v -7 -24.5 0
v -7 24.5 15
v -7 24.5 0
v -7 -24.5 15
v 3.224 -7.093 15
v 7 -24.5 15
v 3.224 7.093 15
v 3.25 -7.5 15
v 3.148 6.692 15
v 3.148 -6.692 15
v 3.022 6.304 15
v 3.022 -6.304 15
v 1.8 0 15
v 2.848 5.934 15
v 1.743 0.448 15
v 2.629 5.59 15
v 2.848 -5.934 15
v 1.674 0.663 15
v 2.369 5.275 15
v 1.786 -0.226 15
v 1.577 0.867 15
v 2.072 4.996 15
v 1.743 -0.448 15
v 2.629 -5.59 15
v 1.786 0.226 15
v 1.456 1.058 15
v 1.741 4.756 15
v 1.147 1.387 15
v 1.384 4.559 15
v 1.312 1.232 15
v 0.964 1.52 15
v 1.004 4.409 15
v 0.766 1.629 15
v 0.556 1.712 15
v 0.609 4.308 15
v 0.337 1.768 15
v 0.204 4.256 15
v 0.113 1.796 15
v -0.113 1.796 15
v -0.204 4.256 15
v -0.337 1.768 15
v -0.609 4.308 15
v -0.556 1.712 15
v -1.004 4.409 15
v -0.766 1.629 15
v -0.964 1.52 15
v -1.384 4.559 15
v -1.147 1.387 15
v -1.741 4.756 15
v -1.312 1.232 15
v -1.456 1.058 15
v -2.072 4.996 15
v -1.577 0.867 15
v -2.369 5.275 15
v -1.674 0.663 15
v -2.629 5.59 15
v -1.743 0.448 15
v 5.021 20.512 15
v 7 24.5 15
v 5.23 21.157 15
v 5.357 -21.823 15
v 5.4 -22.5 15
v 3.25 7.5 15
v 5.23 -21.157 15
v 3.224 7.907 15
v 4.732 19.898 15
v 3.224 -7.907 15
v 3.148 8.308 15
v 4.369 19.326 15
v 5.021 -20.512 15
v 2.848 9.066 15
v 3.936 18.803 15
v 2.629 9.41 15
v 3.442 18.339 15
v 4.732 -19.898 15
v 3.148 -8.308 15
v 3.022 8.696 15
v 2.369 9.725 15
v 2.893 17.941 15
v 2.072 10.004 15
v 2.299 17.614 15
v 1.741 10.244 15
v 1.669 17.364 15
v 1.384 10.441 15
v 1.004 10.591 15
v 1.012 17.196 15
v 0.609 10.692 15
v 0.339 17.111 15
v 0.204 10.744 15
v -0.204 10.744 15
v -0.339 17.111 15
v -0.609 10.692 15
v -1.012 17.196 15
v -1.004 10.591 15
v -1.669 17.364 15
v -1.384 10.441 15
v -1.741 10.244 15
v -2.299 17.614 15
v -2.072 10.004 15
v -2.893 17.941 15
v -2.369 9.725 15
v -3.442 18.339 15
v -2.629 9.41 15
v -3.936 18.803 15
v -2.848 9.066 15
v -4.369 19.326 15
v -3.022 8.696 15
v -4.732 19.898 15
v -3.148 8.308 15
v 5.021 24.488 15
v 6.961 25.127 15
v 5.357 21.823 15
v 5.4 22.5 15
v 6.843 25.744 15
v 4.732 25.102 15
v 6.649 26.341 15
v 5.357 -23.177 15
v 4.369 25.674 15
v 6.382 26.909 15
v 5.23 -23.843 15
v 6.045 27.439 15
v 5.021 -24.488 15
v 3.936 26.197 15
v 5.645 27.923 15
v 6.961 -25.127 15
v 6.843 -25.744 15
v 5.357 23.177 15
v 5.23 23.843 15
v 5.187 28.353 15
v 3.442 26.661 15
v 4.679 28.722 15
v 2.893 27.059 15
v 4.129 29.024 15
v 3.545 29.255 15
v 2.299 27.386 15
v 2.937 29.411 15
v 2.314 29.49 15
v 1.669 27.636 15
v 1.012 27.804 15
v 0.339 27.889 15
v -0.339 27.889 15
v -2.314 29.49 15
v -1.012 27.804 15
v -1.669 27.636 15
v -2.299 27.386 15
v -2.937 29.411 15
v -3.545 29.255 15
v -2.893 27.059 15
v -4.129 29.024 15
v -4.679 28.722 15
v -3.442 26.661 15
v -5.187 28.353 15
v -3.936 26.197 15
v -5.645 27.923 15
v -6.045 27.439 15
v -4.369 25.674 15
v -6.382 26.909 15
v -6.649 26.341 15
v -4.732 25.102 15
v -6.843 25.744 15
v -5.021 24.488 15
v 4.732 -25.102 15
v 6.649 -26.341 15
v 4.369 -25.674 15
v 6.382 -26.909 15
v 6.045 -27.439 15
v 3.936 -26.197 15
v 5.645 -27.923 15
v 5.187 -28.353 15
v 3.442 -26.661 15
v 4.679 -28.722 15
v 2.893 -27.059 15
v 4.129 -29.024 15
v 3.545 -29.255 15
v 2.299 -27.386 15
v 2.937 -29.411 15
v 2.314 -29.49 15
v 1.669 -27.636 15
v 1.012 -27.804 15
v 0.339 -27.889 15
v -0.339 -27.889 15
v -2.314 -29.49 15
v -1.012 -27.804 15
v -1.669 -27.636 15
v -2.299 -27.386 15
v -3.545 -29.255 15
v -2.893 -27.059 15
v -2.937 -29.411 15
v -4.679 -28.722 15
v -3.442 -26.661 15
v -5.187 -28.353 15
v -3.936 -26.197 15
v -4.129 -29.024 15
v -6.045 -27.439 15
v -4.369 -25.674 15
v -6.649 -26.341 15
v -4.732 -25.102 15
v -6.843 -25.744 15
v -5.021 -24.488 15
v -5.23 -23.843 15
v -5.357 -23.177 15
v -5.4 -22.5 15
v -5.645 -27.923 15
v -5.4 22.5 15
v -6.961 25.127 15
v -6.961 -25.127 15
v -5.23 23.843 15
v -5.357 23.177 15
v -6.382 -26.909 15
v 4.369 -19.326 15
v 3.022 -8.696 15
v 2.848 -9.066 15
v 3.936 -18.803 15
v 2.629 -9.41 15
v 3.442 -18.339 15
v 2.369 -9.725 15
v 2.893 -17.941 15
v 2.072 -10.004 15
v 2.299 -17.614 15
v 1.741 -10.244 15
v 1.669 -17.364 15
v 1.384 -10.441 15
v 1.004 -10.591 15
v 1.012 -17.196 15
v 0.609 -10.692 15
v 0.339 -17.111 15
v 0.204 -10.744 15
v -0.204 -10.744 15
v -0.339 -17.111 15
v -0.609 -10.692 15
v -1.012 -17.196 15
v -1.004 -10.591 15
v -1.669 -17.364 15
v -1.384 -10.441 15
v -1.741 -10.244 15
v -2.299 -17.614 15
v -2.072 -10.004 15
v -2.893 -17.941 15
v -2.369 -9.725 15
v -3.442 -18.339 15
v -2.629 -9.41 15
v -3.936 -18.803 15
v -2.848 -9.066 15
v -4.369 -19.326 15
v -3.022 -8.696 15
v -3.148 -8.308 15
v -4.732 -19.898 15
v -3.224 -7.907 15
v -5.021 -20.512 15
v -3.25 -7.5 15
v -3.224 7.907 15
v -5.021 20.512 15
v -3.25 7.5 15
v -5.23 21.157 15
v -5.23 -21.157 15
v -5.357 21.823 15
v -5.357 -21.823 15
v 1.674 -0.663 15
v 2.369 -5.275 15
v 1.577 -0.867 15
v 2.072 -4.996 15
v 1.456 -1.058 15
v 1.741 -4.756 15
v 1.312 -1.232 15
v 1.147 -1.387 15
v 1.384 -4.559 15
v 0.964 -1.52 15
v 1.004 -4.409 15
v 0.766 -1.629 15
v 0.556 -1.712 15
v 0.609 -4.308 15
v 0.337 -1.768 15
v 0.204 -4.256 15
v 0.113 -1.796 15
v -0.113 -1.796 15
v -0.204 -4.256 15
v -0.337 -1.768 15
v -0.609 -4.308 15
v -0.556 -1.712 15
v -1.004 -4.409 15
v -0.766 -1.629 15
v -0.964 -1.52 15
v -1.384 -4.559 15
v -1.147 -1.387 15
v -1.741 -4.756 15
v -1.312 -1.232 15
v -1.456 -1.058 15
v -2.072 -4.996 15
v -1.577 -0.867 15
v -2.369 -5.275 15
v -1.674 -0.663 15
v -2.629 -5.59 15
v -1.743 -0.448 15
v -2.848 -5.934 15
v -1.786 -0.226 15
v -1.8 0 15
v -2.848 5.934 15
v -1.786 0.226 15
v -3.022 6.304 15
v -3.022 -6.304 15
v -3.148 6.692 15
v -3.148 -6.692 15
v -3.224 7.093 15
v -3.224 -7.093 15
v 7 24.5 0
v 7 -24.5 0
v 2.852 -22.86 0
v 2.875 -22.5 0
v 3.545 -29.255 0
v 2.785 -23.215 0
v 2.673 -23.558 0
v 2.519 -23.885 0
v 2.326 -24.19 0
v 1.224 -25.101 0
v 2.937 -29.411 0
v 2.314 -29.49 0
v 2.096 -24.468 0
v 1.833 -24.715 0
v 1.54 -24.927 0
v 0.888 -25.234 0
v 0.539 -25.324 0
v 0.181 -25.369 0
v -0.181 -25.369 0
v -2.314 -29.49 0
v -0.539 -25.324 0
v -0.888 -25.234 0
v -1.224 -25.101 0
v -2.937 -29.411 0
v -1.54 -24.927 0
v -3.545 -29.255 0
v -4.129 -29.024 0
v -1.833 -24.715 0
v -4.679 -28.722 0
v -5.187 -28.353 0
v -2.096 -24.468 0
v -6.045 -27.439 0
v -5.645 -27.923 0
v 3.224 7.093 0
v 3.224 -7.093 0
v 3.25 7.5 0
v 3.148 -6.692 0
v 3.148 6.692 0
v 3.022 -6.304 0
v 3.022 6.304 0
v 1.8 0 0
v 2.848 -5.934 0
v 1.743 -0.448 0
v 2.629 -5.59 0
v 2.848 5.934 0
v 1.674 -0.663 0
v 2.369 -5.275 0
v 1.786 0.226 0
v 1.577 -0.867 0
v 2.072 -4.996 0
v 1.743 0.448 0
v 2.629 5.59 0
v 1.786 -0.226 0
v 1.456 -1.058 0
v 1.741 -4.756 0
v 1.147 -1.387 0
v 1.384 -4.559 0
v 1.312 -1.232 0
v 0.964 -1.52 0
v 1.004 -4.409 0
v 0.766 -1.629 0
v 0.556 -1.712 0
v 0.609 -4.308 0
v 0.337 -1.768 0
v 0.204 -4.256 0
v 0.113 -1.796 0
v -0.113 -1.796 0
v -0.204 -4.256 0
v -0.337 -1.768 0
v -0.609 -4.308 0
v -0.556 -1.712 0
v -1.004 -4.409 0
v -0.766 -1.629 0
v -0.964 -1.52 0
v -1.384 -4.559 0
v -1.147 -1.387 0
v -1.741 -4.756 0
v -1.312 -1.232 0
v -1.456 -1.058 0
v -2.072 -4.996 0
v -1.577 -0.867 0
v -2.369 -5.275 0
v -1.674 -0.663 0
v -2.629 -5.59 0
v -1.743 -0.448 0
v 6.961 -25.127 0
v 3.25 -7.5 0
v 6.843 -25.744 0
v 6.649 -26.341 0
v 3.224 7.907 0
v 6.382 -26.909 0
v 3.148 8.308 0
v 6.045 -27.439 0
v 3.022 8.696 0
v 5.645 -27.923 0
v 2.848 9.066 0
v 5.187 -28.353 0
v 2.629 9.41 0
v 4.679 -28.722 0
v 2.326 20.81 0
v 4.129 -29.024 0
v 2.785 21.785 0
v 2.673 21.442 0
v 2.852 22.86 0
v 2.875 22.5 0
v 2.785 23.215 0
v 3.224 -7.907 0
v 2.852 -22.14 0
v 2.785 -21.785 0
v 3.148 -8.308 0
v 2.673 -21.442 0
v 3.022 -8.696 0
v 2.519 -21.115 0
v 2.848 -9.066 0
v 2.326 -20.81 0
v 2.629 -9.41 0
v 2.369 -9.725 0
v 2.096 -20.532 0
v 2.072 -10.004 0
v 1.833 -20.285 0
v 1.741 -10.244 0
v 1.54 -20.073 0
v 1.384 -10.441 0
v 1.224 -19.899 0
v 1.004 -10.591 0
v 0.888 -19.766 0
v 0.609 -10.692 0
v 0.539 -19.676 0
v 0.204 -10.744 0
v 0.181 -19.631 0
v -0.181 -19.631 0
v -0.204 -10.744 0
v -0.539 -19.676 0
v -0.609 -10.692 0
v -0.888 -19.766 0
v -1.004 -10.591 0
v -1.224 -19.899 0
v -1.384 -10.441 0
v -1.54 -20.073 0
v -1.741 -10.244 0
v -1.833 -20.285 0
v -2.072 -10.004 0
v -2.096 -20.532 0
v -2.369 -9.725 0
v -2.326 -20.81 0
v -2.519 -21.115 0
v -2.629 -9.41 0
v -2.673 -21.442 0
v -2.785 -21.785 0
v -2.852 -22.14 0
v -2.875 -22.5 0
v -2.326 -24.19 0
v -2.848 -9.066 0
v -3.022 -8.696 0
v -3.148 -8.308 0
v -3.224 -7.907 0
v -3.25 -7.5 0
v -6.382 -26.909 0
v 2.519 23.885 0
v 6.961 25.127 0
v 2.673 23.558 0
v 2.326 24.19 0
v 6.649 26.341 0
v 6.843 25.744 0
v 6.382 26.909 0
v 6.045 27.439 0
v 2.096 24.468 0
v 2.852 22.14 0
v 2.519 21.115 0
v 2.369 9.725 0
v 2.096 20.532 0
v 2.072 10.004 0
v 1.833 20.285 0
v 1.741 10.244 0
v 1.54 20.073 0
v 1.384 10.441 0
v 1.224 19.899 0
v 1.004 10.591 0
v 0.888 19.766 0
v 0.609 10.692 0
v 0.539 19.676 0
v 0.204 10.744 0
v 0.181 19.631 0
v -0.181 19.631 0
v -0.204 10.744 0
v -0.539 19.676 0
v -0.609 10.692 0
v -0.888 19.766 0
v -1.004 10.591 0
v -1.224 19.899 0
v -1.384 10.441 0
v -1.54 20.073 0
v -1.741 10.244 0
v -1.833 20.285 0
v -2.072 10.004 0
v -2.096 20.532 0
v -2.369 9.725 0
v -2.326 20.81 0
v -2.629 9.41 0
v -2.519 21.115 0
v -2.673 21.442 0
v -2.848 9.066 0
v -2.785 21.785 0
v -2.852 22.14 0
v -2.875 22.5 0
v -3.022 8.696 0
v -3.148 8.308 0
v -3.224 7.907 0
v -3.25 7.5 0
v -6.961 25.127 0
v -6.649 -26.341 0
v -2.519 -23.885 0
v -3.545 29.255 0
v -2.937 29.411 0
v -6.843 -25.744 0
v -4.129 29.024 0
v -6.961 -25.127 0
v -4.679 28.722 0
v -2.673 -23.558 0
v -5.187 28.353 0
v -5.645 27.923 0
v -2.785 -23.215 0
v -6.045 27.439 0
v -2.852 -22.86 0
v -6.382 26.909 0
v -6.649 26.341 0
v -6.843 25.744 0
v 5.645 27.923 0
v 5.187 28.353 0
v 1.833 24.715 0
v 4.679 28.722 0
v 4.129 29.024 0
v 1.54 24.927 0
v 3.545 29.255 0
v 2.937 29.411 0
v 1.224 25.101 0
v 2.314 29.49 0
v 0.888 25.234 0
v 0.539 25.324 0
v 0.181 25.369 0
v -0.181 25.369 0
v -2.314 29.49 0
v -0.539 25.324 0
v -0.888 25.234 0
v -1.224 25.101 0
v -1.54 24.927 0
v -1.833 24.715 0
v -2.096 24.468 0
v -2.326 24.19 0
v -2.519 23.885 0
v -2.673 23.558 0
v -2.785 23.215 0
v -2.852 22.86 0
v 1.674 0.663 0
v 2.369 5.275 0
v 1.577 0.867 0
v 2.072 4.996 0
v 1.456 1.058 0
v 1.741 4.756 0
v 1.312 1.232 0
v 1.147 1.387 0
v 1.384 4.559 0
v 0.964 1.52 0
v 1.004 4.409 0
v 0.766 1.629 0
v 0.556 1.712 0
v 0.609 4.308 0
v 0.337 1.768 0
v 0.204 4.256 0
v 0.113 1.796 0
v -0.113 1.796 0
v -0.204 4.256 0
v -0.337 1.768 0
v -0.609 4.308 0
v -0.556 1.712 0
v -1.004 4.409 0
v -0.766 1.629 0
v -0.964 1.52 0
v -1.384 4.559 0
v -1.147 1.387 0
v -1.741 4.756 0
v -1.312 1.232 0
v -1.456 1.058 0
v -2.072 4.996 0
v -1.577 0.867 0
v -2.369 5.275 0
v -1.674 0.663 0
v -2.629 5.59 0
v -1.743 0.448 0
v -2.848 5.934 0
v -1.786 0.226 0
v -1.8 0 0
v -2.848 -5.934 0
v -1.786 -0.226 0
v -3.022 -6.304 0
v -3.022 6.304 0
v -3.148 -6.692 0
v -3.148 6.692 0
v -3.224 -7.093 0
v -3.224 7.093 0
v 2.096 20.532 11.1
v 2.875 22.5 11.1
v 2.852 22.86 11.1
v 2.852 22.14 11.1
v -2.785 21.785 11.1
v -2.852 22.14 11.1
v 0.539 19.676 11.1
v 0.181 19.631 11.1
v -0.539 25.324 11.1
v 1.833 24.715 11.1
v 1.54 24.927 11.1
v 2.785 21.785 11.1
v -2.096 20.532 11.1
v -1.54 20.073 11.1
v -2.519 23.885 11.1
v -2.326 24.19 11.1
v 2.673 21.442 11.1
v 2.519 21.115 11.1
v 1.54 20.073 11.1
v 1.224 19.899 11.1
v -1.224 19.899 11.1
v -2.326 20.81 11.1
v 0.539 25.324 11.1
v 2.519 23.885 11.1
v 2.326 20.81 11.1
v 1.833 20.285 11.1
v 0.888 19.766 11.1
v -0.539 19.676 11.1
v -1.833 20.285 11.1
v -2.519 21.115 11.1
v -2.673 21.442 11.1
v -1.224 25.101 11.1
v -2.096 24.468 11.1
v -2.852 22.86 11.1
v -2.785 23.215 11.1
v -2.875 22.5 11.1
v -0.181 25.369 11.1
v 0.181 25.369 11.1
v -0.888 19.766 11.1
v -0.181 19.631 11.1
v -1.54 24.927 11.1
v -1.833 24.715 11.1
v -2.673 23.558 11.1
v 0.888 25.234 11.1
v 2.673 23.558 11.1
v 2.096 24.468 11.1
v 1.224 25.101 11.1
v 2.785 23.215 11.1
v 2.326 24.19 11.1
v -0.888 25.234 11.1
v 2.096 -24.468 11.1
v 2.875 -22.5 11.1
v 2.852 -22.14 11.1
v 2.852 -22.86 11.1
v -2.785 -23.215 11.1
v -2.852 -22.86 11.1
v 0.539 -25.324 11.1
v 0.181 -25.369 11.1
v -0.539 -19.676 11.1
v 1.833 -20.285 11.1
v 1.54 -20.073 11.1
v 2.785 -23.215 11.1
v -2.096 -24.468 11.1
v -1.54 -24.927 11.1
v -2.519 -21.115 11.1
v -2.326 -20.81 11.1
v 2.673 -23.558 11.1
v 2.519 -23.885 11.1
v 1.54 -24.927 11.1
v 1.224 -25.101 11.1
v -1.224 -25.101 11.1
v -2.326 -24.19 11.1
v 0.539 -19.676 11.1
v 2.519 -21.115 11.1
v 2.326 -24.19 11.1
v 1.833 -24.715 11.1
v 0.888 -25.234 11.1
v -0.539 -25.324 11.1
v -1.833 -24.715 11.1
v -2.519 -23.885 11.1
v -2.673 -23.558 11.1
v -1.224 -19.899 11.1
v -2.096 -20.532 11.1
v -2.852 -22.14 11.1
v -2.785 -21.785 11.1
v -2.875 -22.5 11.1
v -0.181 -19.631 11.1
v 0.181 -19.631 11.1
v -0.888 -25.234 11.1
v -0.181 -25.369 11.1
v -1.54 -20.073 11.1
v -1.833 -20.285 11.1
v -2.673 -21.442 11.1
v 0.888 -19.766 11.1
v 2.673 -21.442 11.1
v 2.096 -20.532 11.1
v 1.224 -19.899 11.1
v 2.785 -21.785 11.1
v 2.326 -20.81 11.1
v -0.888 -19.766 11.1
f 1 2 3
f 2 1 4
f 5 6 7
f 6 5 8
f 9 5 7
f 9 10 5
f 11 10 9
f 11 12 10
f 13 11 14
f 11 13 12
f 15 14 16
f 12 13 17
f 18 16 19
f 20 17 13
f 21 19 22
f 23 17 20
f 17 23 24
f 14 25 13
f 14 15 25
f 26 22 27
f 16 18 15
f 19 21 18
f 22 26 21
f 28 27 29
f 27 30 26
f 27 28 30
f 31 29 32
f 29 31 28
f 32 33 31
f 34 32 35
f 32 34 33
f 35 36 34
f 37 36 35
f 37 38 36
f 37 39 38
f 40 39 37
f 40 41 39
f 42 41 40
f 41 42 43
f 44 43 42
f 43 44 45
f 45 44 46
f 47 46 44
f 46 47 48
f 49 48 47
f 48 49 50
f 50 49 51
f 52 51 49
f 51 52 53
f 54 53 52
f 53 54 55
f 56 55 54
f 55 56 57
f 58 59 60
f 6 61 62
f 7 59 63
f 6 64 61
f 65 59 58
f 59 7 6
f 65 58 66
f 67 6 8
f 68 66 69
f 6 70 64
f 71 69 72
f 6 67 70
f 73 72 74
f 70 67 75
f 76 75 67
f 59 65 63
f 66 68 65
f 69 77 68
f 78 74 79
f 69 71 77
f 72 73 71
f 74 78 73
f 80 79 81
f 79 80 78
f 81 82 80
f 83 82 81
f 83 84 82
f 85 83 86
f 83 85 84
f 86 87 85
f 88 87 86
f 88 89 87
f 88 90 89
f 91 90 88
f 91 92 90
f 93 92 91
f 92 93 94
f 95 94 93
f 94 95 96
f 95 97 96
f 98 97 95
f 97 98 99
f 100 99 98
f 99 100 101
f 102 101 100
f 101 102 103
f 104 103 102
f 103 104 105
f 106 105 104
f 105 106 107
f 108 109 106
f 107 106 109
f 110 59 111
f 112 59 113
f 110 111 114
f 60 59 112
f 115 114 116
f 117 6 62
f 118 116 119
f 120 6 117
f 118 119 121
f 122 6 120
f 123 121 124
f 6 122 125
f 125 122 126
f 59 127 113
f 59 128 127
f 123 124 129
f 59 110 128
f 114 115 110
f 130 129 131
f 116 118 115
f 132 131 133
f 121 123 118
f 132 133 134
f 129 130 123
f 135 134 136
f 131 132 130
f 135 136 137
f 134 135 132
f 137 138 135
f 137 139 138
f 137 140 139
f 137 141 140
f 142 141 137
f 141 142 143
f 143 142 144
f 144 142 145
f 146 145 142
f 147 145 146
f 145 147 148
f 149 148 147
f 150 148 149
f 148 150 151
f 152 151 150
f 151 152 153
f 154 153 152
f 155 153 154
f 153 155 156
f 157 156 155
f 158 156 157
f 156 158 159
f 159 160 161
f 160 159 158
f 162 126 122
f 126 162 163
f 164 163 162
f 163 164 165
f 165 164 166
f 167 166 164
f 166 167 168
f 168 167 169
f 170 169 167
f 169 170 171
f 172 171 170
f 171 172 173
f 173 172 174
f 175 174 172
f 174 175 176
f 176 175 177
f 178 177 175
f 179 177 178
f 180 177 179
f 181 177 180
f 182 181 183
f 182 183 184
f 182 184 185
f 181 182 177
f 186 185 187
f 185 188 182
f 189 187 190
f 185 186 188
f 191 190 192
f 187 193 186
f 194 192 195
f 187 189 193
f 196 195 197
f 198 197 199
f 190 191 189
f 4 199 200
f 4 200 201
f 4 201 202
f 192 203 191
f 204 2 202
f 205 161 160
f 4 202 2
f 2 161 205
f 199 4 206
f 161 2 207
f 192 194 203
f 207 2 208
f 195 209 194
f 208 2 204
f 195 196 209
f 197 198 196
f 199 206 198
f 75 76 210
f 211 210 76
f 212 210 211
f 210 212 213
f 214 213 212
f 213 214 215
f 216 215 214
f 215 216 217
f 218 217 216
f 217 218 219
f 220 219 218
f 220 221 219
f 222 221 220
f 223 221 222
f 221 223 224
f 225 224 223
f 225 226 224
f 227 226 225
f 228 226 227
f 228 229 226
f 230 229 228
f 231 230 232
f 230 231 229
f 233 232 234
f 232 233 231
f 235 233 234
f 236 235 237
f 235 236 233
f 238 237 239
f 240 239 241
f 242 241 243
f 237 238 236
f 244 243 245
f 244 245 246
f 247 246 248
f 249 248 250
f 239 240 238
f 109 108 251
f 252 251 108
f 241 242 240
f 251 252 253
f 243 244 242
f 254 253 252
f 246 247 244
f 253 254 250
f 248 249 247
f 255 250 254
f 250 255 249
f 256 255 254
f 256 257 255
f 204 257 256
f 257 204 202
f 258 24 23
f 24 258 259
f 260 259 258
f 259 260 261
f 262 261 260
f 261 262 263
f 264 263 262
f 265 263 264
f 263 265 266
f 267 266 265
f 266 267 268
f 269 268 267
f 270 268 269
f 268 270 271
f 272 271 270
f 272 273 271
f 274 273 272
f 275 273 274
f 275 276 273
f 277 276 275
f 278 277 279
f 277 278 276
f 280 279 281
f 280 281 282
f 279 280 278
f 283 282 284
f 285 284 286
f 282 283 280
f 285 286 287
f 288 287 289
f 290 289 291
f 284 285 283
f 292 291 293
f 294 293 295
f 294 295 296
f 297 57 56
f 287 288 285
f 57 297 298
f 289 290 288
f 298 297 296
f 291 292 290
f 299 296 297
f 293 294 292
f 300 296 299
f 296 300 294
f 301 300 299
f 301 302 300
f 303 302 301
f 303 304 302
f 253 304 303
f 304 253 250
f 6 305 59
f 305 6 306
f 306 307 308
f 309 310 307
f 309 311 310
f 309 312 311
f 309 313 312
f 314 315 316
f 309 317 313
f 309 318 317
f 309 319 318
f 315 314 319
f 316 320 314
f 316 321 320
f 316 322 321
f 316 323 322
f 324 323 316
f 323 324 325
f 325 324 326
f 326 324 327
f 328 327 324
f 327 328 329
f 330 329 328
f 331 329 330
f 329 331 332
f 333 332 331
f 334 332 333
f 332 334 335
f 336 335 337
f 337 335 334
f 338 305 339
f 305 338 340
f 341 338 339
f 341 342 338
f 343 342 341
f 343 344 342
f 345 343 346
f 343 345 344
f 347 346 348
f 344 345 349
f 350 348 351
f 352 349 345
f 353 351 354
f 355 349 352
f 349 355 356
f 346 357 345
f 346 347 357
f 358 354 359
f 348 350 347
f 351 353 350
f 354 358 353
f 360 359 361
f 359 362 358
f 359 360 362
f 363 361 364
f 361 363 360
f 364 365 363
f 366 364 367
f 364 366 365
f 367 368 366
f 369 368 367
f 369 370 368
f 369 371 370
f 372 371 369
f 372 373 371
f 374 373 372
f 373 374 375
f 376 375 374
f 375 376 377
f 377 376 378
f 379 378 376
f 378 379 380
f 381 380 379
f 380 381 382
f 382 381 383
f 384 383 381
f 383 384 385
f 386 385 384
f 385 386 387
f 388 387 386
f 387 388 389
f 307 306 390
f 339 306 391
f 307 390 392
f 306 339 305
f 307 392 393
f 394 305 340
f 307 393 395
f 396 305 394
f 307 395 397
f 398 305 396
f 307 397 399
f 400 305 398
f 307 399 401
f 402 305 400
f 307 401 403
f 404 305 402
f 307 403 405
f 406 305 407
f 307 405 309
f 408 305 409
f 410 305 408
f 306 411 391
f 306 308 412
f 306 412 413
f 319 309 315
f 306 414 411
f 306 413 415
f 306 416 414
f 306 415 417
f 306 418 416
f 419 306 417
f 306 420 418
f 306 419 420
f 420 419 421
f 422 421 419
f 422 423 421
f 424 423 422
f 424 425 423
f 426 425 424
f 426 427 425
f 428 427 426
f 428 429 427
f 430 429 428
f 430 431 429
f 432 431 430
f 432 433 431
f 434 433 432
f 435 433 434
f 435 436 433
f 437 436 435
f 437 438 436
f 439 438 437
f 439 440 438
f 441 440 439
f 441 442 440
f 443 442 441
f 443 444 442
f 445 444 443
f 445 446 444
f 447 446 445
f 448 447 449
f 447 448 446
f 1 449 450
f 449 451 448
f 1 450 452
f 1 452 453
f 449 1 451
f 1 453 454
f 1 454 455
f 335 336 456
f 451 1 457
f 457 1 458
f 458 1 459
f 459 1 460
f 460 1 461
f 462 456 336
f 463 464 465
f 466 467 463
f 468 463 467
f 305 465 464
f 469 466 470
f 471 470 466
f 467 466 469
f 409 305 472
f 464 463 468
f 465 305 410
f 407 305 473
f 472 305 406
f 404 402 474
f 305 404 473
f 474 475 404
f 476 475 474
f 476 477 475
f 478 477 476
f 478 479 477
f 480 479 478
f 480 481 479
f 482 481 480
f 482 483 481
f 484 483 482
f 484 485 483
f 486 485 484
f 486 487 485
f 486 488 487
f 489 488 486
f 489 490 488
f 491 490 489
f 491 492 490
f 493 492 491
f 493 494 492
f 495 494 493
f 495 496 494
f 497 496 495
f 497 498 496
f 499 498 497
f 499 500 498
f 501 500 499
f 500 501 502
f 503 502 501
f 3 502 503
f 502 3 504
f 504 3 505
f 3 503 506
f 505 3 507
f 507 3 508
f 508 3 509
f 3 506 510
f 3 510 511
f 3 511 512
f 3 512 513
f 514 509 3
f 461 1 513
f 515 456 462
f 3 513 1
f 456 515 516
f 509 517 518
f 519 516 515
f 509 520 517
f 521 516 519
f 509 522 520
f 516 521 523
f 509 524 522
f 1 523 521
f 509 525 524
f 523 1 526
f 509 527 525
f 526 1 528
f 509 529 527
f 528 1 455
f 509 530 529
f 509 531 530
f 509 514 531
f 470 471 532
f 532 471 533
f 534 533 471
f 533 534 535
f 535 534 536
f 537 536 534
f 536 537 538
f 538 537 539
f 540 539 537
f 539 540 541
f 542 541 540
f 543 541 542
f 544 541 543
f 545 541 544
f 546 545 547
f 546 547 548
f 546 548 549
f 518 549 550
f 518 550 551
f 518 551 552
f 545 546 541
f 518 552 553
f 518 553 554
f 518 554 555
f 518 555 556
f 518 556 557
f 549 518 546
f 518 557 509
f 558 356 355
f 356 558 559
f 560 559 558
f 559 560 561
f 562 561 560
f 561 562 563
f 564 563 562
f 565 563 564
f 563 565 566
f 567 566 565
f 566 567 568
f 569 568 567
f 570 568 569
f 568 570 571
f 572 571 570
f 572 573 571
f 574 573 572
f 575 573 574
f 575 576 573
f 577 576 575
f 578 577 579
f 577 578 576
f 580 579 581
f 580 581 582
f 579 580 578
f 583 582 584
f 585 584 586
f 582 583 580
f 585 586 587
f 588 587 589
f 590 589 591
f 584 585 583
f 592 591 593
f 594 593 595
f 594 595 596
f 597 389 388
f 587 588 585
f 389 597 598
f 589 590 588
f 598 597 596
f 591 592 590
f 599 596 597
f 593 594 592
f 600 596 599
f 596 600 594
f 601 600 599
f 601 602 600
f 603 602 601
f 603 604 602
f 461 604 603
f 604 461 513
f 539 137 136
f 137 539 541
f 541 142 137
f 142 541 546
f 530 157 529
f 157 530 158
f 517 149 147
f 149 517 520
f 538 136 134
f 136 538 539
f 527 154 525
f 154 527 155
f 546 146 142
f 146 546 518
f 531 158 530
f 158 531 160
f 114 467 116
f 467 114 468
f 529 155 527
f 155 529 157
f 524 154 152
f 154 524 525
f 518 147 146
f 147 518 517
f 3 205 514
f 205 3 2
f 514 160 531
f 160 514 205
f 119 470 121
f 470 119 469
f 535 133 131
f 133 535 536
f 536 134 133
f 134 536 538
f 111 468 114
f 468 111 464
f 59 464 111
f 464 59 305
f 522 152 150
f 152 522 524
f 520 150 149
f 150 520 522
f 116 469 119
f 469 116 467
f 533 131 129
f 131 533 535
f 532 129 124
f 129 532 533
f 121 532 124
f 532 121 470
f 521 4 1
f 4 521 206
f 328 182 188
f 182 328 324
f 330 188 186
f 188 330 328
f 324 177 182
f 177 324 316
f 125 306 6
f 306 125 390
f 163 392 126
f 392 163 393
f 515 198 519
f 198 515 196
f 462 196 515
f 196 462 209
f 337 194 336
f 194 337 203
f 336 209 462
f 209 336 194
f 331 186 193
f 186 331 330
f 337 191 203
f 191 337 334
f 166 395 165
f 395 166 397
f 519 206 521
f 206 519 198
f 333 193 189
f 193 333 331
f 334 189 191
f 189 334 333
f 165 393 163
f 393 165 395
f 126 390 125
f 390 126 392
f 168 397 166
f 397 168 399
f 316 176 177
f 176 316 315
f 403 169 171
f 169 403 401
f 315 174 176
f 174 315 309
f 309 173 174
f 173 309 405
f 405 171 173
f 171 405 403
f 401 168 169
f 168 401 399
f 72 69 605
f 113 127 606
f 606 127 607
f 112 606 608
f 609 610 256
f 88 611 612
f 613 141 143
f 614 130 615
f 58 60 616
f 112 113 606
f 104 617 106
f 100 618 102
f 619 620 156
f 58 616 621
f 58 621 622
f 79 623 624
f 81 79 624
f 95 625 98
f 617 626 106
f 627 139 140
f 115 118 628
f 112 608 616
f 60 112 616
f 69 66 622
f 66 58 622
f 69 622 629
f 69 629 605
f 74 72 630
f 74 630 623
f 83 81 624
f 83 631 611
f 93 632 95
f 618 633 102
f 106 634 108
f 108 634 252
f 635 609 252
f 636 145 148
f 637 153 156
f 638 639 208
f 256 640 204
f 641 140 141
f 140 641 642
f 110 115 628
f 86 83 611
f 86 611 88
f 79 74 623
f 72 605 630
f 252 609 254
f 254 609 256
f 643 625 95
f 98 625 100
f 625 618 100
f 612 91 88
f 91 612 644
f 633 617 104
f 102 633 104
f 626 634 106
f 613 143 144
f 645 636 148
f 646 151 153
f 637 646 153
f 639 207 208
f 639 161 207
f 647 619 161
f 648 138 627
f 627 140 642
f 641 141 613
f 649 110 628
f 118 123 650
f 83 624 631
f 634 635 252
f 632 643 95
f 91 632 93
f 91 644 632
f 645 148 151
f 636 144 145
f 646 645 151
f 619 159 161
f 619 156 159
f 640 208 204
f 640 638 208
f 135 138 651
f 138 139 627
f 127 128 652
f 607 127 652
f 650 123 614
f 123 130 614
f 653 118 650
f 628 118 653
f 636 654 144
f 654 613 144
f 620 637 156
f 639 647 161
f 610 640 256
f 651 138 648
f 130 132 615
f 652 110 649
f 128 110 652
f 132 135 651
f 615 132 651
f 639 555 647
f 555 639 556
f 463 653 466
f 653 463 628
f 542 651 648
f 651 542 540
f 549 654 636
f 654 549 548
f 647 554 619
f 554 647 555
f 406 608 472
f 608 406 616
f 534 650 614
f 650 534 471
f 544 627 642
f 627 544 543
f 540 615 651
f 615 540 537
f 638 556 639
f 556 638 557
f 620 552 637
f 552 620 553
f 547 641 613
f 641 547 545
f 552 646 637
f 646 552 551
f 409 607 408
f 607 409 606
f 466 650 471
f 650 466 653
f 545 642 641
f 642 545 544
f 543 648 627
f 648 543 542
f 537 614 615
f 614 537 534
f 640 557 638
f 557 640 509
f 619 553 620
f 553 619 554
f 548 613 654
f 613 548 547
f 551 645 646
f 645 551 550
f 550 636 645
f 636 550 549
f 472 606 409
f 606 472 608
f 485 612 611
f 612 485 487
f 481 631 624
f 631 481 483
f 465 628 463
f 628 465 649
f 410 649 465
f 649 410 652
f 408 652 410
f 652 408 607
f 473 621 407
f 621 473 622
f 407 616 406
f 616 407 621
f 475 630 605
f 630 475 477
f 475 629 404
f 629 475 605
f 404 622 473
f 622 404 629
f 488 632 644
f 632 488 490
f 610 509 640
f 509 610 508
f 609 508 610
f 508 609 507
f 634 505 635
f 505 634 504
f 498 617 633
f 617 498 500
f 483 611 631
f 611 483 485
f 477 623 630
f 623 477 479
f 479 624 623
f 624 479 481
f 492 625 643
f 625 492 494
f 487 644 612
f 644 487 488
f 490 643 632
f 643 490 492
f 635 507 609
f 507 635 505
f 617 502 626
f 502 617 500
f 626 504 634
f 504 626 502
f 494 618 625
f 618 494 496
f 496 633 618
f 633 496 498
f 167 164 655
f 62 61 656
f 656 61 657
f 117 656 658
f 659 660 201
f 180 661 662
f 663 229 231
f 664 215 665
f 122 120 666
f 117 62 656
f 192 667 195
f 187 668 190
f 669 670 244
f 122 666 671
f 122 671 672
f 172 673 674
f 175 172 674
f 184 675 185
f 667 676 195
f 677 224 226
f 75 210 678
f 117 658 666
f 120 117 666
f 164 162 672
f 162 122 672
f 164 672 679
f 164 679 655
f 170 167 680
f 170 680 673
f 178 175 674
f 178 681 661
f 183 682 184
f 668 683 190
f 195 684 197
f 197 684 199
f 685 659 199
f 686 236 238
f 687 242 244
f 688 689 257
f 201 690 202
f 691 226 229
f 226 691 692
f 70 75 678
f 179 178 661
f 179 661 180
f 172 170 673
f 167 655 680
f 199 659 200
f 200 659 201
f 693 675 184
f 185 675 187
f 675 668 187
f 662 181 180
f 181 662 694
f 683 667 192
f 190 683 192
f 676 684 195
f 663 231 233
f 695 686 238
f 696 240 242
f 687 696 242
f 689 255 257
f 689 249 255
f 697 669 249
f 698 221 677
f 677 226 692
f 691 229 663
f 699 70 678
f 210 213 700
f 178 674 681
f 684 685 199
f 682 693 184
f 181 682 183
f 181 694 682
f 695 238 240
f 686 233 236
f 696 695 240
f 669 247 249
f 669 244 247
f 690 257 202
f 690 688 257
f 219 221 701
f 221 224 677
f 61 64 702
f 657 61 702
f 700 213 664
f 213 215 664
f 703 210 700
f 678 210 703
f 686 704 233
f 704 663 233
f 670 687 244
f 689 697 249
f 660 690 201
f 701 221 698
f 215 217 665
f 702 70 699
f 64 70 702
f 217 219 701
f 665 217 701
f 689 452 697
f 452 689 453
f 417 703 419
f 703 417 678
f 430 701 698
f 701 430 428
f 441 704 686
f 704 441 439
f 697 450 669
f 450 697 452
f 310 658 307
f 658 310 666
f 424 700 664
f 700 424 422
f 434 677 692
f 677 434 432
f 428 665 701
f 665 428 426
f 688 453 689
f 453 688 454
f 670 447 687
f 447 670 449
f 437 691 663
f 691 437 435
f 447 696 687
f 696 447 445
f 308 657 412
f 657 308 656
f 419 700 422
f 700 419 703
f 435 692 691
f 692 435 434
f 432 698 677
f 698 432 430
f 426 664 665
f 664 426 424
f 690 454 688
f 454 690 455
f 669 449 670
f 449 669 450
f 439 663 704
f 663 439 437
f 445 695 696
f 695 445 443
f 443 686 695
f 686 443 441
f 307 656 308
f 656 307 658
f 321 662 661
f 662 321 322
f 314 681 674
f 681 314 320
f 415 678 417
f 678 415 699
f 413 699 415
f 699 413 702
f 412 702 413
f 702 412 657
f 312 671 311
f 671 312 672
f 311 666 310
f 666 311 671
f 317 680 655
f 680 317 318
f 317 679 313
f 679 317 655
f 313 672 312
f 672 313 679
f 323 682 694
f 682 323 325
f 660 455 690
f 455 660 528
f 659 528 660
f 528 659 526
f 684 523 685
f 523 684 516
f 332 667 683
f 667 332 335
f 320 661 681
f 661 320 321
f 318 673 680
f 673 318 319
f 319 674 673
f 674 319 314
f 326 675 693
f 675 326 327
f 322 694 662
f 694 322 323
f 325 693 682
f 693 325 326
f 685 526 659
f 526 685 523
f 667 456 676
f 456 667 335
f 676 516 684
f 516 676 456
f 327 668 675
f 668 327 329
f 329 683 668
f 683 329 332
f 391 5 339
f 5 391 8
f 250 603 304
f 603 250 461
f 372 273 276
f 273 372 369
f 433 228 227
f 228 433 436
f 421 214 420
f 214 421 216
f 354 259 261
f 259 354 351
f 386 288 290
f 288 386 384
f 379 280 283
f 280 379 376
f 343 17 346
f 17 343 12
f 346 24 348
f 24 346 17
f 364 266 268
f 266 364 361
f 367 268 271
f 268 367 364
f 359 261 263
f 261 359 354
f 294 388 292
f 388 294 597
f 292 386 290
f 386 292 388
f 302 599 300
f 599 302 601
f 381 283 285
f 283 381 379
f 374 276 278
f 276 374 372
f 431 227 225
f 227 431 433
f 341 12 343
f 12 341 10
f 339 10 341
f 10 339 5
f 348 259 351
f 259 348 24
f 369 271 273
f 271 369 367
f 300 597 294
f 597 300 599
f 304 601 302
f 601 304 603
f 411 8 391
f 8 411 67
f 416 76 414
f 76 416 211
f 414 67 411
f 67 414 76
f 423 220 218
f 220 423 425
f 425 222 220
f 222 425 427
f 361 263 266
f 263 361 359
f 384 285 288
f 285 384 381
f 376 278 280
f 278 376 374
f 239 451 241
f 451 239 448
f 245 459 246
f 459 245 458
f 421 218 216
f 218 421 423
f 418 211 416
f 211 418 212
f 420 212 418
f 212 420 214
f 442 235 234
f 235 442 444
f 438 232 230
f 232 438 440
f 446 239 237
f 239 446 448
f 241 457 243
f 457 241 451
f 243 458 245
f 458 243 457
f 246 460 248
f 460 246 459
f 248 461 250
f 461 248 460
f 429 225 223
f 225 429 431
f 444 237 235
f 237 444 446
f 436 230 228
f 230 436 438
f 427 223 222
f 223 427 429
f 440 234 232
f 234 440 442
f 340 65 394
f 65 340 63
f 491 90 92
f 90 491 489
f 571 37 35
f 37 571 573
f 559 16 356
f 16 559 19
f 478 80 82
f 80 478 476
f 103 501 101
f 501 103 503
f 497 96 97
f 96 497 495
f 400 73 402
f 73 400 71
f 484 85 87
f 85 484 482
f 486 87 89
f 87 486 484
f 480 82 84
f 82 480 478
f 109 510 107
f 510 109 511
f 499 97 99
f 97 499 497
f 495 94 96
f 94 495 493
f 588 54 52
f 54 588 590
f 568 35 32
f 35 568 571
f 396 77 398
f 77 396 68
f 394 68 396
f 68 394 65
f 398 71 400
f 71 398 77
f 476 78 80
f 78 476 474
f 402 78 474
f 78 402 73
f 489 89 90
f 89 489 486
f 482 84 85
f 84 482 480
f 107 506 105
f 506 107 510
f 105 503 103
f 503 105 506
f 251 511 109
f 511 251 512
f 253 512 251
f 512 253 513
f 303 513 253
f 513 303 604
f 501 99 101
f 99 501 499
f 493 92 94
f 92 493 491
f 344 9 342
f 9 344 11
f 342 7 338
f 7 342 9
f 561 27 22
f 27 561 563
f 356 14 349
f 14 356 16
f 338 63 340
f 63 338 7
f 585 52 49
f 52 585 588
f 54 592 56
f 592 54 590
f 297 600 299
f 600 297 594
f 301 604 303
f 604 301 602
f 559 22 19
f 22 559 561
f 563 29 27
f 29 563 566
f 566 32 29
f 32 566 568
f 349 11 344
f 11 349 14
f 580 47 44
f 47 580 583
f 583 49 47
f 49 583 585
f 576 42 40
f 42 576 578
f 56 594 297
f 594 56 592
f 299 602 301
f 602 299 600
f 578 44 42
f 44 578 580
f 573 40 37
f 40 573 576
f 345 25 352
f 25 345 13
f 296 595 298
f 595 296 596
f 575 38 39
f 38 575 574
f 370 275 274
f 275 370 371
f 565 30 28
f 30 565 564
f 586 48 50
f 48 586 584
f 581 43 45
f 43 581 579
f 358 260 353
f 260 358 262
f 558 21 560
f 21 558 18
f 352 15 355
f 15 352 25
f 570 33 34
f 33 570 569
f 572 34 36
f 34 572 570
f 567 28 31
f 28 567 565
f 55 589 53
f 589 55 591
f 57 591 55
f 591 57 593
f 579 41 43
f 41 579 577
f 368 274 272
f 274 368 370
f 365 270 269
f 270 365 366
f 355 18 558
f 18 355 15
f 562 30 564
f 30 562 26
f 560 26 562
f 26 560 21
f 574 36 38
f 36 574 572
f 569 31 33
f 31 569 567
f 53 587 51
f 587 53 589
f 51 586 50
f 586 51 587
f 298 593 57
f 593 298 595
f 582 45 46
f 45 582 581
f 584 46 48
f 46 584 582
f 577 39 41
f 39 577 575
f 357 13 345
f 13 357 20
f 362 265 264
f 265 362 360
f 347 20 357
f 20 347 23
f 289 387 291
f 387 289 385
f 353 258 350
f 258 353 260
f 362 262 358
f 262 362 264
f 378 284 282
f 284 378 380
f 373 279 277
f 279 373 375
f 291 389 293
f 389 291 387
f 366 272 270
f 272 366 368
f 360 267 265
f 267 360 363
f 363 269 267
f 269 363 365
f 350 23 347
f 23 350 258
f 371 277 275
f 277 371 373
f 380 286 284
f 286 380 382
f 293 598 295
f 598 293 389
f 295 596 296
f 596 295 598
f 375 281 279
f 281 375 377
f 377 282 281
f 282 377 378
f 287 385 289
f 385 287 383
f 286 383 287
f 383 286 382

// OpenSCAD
$fn = 50;


difference() {
	union() {
		hull() {
			translate(v = [-2.0000000000, 9.5000000000, 0]) {
				cylinder(h = 15, r = 5);
			}
			translate(v = [2.0000000000, 9.5000000000, 0]) {
				cylinder(h = 15, r = 5);
			}
			translate(v = [-2.0000000000, -9.5000000000, 0]) {
				cylinder(h = 15, r = 5);
			}
			translate(v = [2.0000000000, -9.5000000000, 0]) {
				cylinder(h = 15, r = 5);
			}
		}
		translate(v = [0.0000000000, 15.0000000000, 0]) {
			hull() {
				translate(v = [-2.0000000000, 9.5000000000, 0]) {
					cylinder(h = 15, r = 5);
				}
				translate(v = [2.0000000000, 9.5000000000, 0]) {
					cylinder(h = 15, r = 5);
				}
				translate(v = [-2.0000000000, -9.5000000000, 0]) {
					cylinder(h = 15, r = 5);
				}
				translate(v = [2.0000000000, -9.5000000000, 0]) {
					cylinder(h = 15, r = 5);
				}
			}
		}
		translate(v = [0.0000000000, 15.0000000000, 0]) {
			hull() {
				translate(v = [-2.0000000000, 9.5000000000, 0]) {
					cylinder(h = 15, r = 5);
				}
				translate(v = [2.0000000000, 9.5000000000, 0]) {
					cylinder(h = 15, r = 5);
				}
				translate(v = [-2.0000000000, -9.5000000000, 0]) {
					cylinder(h = 15, r = 5);
				}
				translate(v = [2.0000000000, -9.5000000000, 0]) {
					cylinder(h = 15, r = 5);
				}
			}
		}
		translate(v = [0.0000000000, -15.0000000000, 0]) {
			hull() {
				translate(v = [-2.0000000000, 9.5000000000, 0]) {
					cylinder(h = 15, r = 5);
				}
				translate(v = [2.0000000000, 9.5000000000, 0]) {
					cylinder(h = 15, r = 5);
				}
				translate(v = [-2.0000000000, -9.5000000000, 0]) {
					cylinder(h = 15, r = 5);
				}
				translate(v = [2.0000000000, -9.5000000000, 0]) {
					cylinder(h = 15, r = 5);
				}
			}
		}
		translate(v = [0.0000000000, -15.0000000000, 0]) {
			hull() {
				translate(v = [-2.0000000000, 9.5000000000, 0]) {
					cylinder(h = 15, r = 5);
				}
				translate(v = [2.0000000000, 9.5000000000, 0]) {
					cylinder(h = 15, r = 5);
				}
				translate(v = [-2.0000000000, -9.5000000000, 0]) {
					cylinder(h = 15, r = 5);
				}
				translate(v = [2.0000000000, -9.5000000000, 0]) {
					cylinder(h = 15, r = 5);
				}
			}
		}
	}
	union() {
		translate(v = [0.0000000000, 22.5000000000, 15]) {
			rotate(a = [0, 0, 0]) {
				difference() {
					union() {
						#translate(v = [0, 0, -15.0000000000]) {
							cylinder(h = 15, r = 2.6000000000);
						}
						#translate(v = [0, 0, -3.9000000000]) {
							cylinder(h = 3.9000000000, r1 = 2.8750000000, r2 = 5.4000000000);
						}
						#translate(v = [0, 0, -15.0000000000]) {
							cylinder(h = 15, r = 2.8750000000);
						}
						#translate(v = [0, 0, -15.0000000000]) {
							cylinder(h = 15, r = 2.6000000000);
						}
					}
					union();
				}
			}
		}
		translate(v = [0.0000000000, 22.5000000000, 15]) {
			rotate(a = [0, 0, 0]) {
				difference() {
					union() {
						#translate(v = [0, 0, -15.0000000000]) {
							cylinder(h = 15, r = 2.6000000000);
						}
						#translate(v = [0, 0, -3.9000000000]) {
							cylinder(h = 3.9000000000, r1 = 2.8750000000, r2 = 5.4000000000);
						}
						#translate(v = [0, 0, -15.0000000000]) {
							cylinder(h = 15, r = 2.8750000000);
						}
						#translate(v = [0, 0, -15.0000000000]) {
							cylinder(h = 15, r = 2.6000000000);
						}
					}
					union();
				}
			}
		}
		translate(v = [0.0000000000, -22.5000000000, 15]) {
			rotate(a = [0, 0, 0]) {
				difference() {
					union() {
						#translate(v = [0, 0, -15.0000000000]) {
							cylinder(h = 15, r = 2.6000000000);
						}
						#translate(v = [0, 0, -3.9000000000]) {
							cylinder(h = 3.9000000000, r1 = 2.8750000000, r2 = 5.4000000000);
						}
						#translate(v = [0, 0, -15.0000000000]) {
							cylinder(h = 15, r = 2.8750000000);
						}
						#translate(v = [0, 0, -15.0000000000]) {
							cylinder(h = 15, r = 2.6000000000);
						}
					}
					union();
				}
			}
		}
		translate(v = [0.0000000000, -22.5000000000, 15]) {
			rotate(a = [0, 0, 0]) {
				difference() {
					union() {
						#translate(v = [0, 0, -15.0000000000]) {
							cylinder(h = 15, r = 2.6000000000);
						}
						#translate(v = [0, 0, -3.9000000000]) {
							cylinder(h = 3.9000000000, r1 = 2.8750000000, r2 = 5.4000000000);
						}
						#translate(v = [0, 0, -15.0000000000]) {
							cylinder(h = 15, r = 2.8750000000);
						}
						#translate(v = [0, 0, -15.0000000000]) {
							cylinder(h = 15, r = 2.6000000000);
						}
					}
					union();
				}
			}
		}
		translate(v = [0.0000000000, -7.5000000000, 0]) {
			translate(v = [0, 0, -100]) {
				cylinder(h = 200, r = 3.2500000000);
			}
		}
		translate(v = [0.0000000000, 7.5000000000, 0]) {
			translate(v = [0, 0, -100]) {
				cylinder(h = 200, r = 3.2500000000);
			}
		}
		translate(v = [0.0000000000, -7.5000000000, 0]) {
			translate(v = [0, 0, -100]) {
				cylinder(h = 200, r = 1.8000000000);
			}
		}
		translate(v = [0, 0, -100]) {
			cylinder(h = 200, r = 1.8000000000);
		}
		translate(v = [0.0000000000, 7.5000000000, 0]) {
			translate(v = [0, 0, -100]) {
				cylinder(h = 200, r = 1.8000000000);
			}
		}
	}
}
